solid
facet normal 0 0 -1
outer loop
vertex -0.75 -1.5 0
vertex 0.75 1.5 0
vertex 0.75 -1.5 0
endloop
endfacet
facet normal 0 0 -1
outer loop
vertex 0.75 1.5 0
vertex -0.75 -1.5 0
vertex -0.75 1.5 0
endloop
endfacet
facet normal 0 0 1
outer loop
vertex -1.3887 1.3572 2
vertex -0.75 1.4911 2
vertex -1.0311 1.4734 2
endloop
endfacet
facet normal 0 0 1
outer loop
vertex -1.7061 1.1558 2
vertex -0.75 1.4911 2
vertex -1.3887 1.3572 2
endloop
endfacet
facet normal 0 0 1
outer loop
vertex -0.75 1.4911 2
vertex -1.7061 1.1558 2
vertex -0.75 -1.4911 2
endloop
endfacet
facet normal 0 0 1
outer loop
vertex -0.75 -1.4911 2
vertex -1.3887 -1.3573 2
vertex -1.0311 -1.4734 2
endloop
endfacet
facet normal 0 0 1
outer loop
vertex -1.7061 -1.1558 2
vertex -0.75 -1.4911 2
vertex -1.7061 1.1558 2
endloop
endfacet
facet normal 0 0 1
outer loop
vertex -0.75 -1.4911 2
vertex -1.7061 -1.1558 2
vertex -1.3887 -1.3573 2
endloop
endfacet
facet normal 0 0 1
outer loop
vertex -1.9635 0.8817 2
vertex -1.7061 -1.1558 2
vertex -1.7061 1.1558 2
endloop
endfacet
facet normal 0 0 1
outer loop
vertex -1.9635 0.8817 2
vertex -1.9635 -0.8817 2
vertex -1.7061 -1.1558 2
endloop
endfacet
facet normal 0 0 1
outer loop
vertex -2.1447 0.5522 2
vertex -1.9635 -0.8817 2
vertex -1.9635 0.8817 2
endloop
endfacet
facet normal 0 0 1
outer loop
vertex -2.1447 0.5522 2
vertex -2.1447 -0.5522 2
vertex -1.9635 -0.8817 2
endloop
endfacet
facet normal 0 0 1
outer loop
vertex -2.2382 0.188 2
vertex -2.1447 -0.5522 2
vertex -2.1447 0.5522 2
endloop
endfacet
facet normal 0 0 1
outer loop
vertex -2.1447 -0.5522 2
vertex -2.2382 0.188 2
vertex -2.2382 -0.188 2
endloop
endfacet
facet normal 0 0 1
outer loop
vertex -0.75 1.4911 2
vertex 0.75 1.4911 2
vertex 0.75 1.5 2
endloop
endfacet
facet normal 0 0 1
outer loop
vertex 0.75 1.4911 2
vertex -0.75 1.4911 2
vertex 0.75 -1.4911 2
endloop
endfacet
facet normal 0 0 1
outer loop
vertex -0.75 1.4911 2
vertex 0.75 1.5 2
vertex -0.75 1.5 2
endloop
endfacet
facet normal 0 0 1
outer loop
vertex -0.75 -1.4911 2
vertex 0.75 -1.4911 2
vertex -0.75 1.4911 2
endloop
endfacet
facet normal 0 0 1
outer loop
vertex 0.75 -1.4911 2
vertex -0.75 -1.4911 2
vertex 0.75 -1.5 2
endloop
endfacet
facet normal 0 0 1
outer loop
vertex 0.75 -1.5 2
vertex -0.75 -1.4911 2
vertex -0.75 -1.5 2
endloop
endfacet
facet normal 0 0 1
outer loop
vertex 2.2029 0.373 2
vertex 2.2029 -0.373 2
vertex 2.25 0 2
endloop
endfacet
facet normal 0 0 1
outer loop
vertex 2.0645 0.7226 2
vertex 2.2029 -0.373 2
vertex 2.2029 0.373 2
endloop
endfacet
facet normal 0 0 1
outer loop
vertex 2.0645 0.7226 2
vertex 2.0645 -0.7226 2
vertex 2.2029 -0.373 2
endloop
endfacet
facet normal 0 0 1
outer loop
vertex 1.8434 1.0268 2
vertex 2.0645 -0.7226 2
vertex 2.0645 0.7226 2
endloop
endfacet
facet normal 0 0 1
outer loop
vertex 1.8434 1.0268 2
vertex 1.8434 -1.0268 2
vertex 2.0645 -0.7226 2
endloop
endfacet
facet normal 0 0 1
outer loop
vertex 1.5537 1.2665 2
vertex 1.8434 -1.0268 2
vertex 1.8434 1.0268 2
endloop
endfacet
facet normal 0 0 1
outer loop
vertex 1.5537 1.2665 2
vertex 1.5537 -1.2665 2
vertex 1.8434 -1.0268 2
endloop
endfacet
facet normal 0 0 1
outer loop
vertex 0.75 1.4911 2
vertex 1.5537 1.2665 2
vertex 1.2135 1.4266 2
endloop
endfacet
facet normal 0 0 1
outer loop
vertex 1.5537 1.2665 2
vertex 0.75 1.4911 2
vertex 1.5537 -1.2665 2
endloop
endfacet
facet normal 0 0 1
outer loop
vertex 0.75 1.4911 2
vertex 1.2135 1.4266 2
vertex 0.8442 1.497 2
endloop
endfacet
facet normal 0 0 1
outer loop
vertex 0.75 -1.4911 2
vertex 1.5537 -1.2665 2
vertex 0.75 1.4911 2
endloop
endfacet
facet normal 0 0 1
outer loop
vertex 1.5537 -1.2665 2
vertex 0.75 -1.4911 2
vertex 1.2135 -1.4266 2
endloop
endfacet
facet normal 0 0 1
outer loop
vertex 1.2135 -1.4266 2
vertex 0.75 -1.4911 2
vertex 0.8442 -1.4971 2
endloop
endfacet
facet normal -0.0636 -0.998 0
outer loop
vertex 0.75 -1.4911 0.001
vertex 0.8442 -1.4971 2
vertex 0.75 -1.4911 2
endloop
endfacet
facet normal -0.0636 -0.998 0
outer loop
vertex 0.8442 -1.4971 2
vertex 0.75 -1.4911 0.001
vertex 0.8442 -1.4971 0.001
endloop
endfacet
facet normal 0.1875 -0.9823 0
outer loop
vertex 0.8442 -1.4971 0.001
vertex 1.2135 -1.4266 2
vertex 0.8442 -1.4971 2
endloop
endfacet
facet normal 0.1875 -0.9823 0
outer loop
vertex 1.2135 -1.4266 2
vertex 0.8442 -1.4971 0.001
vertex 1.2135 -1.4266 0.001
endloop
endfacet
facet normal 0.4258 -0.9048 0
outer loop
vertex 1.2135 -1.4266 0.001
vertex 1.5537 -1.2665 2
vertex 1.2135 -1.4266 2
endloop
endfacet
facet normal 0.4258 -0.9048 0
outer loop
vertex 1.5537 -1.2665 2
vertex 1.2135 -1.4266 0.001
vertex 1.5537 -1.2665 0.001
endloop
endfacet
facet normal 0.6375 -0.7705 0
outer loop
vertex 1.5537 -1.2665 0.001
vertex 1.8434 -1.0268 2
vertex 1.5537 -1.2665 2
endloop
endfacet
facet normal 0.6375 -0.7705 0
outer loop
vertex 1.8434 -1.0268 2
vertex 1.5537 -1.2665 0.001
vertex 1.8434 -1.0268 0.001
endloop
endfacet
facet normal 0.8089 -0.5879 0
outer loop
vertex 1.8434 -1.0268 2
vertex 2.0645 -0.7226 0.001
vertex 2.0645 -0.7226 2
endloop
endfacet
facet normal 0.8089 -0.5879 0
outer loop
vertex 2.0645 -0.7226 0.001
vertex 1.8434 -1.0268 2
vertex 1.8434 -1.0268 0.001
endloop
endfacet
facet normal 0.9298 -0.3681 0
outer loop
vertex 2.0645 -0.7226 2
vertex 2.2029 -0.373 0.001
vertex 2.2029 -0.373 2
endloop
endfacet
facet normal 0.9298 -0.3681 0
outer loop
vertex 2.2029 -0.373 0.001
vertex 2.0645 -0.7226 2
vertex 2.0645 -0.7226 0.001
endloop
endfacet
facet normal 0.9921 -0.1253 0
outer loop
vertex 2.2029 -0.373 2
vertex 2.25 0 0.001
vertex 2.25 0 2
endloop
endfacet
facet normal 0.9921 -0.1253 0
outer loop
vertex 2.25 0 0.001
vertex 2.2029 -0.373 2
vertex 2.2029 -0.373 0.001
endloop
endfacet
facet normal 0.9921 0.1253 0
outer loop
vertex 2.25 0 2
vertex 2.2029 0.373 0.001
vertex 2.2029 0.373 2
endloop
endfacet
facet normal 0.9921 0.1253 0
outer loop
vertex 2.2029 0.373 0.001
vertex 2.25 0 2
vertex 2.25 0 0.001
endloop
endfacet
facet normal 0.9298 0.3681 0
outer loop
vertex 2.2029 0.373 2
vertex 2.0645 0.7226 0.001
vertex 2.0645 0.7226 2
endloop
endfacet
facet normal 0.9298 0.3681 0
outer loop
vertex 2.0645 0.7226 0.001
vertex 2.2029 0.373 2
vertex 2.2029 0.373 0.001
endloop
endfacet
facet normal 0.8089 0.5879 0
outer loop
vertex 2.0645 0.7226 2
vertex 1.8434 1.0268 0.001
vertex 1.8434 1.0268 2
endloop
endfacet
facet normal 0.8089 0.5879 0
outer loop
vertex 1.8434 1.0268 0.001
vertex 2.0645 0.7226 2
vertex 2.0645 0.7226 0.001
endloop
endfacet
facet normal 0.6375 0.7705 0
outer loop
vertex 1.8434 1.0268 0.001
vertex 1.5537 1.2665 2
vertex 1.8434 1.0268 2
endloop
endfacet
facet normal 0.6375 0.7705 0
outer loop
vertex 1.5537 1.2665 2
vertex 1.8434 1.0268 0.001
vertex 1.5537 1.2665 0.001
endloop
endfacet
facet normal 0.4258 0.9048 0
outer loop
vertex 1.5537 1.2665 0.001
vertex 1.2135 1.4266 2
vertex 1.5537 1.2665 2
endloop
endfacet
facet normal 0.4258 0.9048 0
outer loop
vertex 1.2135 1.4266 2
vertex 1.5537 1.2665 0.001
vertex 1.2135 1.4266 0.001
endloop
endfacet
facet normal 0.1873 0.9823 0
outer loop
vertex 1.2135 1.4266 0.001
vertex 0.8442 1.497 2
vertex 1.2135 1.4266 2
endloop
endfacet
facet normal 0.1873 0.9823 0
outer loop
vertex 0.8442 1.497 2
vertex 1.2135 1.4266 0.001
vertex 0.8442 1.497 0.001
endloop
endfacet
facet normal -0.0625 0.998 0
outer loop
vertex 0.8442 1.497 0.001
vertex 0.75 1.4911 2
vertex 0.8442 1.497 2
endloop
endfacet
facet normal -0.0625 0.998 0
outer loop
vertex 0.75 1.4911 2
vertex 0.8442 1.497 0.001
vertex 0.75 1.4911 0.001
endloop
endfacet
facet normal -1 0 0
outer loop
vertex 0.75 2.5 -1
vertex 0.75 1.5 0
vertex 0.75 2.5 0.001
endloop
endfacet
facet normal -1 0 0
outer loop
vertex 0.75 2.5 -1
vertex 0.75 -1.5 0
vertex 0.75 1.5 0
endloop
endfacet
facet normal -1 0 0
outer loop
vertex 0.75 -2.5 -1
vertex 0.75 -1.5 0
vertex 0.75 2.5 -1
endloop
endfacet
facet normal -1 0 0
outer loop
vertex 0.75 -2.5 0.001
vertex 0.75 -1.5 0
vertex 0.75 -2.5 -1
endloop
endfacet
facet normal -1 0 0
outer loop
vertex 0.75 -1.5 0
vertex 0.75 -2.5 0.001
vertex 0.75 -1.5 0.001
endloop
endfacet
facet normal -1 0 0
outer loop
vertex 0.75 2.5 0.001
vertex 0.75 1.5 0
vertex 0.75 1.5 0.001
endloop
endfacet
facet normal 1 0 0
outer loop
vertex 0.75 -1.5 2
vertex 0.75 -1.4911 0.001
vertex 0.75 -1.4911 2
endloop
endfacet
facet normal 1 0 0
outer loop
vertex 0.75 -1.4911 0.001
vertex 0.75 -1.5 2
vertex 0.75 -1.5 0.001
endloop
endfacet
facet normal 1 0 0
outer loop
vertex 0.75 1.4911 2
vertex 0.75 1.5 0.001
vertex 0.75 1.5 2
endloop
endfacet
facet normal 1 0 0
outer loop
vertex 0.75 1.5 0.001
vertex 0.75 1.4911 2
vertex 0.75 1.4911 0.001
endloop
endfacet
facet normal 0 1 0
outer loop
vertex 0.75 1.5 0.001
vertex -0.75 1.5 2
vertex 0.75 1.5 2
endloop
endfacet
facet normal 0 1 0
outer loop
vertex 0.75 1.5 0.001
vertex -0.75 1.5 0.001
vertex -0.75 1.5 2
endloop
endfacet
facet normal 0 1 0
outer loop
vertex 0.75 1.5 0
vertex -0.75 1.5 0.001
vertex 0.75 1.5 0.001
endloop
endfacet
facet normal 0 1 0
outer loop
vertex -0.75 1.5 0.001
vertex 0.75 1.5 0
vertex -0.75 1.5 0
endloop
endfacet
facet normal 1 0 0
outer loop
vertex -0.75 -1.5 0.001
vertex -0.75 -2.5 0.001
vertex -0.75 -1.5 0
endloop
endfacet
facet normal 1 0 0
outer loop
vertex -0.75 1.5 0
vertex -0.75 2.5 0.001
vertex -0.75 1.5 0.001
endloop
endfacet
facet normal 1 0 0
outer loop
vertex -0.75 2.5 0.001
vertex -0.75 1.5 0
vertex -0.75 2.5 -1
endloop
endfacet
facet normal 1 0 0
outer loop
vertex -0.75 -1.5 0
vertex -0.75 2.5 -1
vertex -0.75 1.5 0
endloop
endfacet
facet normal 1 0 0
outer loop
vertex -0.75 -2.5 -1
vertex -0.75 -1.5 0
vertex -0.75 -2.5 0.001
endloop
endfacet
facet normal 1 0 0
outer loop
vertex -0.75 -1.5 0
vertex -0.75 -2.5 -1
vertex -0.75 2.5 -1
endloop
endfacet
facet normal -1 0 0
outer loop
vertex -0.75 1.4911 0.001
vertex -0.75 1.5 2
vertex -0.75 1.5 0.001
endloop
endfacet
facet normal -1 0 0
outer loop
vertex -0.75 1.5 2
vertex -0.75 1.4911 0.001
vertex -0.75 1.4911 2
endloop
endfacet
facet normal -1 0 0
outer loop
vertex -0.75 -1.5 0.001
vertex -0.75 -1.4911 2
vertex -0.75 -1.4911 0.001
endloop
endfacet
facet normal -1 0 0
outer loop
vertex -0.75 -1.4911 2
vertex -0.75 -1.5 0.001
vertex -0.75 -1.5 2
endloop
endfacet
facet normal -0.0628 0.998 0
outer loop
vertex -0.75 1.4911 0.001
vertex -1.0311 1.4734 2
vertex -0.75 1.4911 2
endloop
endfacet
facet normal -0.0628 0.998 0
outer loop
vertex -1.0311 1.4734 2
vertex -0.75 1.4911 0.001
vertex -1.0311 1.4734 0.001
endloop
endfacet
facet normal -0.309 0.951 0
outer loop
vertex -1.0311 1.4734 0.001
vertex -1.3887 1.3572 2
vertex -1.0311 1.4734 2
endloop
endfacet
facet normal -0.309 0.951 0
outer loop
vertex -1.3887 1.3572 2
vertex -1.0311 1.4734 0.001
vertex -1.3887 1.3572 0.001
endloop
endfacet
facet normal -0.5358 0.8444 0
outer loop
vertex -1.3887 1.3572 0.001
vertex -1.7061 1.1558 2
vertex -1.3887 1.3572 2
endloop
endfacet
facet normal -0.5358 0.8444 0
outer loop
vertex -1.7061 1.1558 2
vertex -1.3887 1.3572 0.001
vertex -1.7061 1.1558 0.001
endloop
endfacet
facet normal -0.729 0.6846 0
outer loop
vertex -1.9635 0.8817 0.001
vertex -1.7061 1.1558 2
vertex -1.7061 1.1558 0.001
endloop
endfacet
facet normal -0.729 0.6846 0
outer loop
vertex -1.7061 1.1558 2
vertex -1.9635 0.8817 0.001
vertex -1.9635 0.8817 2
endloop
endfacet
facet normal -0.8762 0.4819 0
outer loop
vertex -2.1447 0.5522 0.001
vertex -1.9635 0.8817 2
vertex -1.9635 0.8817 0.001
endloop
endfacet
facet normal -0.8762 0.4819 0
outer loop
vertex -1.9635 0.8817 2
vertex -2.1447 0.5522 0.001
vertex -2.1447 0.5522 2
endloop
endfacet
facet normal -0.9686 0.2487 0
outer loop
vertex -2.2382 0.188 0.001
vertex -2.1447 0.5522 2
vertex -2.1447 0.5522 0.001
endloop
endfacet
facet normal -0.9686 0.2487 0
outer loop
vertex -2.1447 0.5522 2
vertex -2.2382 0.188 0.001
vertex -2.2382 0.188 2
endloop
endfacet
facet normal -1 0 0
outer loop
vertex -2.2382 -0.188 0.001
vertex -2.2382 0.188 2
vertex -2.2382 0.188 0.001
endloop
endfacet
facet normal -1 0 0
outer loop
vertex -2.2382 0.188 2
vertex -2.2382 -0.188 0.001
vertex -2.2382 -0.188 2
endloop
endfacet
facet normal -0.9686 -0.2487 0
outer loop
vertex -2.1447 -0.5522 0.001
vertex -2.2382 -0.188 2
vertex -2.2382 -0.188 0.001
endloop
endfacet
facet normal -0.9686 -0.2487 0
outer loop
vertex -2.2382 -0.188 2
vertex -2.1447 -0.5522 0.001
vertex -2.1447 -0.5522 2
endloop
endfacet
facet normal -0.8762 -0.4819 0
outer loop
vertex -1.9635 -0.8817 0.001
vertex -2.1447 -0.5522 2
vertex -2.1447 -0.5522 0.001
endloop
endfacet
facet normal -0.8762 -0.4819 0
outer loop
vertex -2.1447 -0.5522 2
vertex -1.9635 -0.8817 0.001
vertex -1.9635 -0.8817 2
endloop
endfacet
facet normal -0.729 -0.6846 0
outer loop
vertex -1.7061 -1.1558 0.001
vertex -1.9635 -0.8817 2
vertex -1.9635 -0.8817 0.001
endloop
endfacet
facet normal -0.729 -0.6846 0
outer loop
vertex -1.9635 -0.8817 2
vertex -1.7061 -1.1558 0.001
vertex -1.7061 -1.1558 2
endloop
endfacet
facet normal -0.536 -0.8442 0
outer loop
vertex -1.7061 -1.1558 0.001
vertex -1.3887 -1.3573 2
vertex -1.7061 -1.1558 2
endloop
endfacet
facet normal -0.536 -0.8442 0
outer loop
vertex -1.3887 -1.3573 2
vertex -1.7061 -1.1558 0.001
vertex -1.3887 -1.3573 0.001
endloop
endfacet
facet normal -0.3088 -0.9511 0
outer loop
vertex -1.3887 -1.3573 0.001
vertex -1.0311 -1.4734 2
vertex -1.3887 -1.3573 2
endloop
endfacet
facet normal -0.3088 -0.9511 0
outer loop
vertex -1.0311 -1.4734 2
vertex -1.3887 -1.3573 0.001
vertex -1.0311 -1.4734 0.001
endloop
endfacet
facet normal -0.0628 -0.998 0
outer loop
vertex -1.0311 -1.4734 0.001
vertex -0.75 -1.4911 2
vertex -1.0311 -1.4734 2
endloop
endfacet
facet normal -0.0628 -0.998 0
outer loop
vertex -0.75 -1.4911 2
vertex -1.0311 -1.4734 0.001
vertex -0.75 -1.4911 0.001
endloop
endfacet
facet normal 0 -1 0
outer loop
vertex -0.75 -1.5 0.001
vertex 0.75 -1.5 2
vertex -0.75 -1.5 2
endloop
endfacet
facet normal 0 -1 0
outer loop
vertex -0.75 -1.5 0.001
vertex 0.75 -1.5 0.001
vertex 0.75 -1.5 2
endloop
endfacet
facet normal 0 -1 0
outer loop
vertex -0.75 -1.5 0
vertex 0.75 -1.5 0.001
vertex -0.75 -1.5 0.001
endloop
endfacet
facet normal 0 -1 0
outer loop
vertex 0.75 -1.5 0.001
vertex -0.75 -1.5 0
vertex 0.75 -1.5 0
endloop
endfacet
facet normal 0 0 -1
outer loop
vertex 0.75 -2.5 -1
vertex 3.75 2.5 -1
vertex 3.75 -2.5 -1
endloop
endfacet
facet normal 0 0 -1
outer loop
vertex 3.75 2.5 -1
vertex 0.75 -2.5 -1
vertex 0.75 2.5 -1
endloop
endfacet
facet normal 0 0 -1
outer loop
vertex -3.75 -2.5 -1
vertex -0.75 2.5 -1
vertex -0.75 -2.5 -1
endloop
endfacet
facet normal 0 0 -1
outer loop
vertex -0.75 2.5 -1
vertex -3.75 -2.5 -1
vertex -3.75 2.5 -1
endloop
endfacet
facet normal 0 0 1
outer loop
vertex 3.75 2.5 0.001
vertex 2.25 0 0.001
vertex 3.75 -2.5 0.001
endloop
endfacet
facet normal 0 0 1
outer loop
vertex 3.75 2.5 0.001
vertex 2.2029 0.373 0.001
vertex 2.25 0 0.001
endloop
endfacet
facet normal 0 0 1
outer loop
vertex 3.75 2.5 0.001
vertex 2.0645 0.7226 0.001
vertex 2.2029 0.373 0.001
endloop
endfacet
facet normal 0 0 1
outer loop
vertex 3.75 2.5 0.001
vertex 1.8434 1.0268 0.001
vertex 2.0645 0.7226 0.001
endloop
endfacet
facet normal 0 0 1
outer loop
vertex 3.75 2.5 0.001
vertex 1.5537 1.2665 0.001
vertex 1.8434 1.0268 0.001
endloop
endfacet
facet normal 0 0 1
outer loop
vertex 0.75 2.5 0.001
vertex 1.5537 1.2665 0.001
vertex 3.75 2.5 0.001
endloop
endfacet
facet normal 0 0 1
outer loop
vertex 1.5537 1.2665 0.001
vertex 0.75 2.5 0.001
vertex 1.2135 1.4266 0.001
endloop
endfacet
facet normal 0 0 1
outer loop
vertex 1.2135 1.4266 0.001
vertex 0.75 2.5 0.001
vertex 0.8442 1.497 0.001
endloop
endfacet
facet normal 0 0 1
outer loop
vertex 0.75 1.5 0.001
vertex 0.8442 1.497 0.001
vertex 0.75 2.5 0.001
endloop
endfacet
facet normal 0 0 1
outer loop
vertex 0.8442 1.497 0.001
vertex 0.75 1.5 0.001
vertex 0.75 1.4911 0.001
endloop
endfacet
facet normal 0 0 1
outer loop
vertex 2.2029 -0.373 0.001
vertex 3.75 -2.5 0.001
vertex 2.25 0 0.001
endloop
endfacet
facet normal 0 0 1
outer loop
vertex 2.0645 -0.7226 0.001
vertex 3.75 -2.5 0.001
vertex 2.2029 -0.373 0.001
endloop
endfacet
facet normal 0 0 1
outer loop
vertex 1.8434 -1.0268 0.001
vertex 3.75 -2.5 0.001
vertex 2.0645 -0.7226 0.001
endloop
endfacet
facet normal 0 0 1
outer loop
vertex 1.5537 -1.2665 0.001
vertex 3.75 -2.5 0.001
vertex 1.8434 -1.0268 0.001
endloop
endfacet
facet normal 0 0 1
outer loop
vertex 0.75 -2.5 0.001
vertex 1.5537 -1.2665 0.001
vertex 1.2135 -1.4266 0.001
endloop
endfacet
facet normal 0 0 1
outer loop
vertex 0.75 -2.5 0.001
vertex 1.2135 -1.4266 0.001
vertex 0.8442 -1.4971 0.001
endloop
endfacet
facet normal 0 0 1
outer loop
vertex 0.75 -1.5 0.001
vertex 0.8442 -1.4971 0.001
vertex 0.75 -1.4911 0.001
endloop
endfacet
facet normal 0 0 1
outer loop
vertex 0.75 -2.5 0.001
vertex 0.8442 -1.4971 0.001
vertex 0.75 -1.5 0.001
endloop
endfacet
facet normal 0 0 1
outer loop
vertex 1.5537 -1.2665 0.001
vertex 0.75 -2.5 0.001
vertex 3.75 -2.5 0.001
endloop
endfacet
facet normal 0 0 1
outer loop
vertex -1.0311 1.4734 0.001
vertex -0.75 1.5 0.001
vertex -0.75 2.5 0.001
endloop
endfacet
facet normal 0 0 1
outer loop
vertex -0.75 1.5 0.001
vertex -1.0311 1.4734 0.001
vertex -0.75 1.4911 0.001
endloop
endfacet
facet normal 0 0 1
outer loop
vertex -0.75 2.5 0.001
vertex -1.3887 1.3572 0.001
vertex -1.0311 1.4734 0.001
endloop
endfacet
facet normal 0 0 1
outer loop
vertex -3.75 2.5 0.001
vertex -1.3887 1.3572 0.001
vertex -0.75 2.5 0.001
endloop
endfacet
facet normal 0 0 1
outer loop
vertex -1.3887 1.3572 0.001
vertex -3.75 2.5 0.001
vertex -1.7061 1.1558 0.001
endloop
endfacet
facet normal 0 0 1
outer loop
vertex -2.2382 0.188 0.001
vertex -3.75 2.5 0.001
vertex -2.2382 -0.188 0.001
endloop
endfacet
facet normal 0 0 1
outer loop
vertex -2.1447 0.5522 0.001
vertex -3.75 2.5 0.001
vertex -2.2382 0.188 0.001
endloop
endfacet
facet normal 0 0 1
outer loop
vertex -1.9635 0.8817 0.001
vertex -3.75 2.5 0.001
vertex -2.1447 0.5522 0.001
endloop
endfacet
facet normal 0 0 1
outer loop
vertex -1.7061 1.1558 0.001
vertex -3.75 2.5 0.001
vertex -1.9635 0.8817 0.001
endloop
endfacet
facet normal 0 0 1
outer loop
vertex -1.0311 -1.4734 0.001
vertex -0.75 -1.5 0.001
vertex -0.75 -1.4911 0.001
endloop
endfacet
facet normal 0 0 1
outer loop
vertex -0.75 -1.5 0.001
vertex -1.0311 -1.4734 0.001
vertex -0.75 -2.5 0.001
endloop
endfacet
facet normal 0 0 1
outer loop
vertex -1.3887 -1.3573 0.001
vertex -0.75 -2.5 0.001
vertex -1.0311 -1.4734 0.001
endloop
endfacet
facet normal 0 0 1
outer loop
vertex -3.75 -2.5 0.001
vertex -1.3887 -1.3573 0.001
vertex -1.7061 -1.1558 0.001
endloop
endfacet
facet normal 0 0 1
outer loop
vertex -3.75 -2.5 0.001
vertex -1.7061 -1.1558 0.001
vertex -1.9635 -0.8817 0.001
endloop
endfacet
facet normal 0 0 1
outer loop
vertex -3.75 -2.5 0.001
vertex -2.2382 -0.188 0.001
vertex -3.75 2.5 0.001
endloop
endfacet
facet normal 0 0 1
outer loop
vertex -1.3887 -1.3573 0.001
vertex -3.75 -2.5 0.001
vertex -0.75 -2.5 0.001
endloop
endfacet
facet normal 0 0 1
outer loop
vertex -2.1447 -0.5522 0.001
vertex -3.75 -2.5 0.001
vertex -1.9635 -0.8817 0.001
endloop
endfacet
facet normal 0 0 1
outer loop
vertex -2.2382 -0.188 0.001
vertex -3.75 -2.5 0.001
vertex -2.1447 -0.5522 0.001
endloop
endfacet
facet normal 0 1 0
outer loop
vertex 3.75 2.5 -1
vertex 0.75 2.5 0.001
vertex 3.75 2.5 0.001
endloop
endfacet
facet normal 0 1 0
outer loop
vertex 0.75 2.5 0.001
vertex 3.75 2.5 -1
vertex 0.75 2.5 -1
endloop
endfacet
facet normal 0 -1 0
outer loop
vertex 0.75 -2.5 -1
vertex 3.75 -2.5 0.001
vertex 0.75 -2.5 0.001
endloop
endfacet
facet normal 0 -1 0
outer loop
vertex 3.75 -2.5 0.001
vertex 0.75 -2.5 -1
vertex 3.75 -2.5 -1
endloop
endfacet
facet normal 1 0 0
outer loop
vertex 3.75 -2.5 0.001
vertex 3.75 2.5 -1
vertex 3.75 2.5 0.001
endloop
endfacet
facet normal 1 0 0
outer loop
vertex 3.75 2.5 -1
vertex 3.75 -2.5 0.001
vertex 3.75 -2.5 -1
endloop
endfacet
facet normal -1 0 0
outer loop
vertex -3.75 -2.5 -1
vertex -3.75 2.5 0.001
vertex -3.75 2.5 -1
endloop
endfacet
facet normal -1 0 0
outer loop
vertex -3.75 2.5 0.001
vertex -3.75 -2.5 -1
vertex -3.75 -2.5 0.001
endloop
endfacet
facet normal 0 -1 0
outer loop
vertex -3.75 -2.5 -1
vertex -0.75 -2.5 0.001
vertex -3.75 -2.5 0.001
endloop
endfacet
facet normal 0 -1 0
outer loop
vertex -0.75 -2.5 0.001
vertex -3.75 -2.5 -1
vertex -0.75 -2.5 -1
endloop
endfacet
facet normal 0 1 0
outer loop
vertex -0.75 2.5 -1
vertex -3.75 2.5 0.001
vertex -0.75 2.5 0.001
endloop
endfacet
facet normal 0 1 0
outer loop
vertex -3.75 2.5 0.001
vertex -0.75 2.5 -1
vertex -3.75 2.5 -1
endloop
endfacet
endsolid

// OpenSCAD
// file: _base.scad
module rsquare(dim, r=0, center=false) {
  x = dim[0];
  y = dim[1];

  ox = center ? -x/2 : 0;
  oy = center ? -y/2 : 0;

  translate([ox, oy]) {
    union() {
      translate([r, 0])
        square([x-2*r, y]);
      translate([0, r])
        square([x, y-2*r]);
      translate([r, r])
        circle(r);
      translate([x-r, r])
        circle(r);
      translate([r, y-r])
        circle(r);
      translate([x-r, y-r])
        circle(r);
    }
  }
}
// main file
use<_base.scad>

$fn = 25;

// switch dimensions
sx = 4.5;
sy = 3;
travel = 1.5;

// wall thickness
wlr = 2.0; // left-right

module Top() {
  linear_extrude(wlr)
    rsquare([sx, sy], r=sy/2, center=true);
}

module Bottom() {
  translate([0, 0, -wlr/2])
    linear_extrude(wlr/2+0.001) // prevent rendering issues
      difference() {
        square([sx+travel+1.5, sy+2], center=true);
        square([1.5, sy+2], center=true);
      }
}

Top();
Bottom();
